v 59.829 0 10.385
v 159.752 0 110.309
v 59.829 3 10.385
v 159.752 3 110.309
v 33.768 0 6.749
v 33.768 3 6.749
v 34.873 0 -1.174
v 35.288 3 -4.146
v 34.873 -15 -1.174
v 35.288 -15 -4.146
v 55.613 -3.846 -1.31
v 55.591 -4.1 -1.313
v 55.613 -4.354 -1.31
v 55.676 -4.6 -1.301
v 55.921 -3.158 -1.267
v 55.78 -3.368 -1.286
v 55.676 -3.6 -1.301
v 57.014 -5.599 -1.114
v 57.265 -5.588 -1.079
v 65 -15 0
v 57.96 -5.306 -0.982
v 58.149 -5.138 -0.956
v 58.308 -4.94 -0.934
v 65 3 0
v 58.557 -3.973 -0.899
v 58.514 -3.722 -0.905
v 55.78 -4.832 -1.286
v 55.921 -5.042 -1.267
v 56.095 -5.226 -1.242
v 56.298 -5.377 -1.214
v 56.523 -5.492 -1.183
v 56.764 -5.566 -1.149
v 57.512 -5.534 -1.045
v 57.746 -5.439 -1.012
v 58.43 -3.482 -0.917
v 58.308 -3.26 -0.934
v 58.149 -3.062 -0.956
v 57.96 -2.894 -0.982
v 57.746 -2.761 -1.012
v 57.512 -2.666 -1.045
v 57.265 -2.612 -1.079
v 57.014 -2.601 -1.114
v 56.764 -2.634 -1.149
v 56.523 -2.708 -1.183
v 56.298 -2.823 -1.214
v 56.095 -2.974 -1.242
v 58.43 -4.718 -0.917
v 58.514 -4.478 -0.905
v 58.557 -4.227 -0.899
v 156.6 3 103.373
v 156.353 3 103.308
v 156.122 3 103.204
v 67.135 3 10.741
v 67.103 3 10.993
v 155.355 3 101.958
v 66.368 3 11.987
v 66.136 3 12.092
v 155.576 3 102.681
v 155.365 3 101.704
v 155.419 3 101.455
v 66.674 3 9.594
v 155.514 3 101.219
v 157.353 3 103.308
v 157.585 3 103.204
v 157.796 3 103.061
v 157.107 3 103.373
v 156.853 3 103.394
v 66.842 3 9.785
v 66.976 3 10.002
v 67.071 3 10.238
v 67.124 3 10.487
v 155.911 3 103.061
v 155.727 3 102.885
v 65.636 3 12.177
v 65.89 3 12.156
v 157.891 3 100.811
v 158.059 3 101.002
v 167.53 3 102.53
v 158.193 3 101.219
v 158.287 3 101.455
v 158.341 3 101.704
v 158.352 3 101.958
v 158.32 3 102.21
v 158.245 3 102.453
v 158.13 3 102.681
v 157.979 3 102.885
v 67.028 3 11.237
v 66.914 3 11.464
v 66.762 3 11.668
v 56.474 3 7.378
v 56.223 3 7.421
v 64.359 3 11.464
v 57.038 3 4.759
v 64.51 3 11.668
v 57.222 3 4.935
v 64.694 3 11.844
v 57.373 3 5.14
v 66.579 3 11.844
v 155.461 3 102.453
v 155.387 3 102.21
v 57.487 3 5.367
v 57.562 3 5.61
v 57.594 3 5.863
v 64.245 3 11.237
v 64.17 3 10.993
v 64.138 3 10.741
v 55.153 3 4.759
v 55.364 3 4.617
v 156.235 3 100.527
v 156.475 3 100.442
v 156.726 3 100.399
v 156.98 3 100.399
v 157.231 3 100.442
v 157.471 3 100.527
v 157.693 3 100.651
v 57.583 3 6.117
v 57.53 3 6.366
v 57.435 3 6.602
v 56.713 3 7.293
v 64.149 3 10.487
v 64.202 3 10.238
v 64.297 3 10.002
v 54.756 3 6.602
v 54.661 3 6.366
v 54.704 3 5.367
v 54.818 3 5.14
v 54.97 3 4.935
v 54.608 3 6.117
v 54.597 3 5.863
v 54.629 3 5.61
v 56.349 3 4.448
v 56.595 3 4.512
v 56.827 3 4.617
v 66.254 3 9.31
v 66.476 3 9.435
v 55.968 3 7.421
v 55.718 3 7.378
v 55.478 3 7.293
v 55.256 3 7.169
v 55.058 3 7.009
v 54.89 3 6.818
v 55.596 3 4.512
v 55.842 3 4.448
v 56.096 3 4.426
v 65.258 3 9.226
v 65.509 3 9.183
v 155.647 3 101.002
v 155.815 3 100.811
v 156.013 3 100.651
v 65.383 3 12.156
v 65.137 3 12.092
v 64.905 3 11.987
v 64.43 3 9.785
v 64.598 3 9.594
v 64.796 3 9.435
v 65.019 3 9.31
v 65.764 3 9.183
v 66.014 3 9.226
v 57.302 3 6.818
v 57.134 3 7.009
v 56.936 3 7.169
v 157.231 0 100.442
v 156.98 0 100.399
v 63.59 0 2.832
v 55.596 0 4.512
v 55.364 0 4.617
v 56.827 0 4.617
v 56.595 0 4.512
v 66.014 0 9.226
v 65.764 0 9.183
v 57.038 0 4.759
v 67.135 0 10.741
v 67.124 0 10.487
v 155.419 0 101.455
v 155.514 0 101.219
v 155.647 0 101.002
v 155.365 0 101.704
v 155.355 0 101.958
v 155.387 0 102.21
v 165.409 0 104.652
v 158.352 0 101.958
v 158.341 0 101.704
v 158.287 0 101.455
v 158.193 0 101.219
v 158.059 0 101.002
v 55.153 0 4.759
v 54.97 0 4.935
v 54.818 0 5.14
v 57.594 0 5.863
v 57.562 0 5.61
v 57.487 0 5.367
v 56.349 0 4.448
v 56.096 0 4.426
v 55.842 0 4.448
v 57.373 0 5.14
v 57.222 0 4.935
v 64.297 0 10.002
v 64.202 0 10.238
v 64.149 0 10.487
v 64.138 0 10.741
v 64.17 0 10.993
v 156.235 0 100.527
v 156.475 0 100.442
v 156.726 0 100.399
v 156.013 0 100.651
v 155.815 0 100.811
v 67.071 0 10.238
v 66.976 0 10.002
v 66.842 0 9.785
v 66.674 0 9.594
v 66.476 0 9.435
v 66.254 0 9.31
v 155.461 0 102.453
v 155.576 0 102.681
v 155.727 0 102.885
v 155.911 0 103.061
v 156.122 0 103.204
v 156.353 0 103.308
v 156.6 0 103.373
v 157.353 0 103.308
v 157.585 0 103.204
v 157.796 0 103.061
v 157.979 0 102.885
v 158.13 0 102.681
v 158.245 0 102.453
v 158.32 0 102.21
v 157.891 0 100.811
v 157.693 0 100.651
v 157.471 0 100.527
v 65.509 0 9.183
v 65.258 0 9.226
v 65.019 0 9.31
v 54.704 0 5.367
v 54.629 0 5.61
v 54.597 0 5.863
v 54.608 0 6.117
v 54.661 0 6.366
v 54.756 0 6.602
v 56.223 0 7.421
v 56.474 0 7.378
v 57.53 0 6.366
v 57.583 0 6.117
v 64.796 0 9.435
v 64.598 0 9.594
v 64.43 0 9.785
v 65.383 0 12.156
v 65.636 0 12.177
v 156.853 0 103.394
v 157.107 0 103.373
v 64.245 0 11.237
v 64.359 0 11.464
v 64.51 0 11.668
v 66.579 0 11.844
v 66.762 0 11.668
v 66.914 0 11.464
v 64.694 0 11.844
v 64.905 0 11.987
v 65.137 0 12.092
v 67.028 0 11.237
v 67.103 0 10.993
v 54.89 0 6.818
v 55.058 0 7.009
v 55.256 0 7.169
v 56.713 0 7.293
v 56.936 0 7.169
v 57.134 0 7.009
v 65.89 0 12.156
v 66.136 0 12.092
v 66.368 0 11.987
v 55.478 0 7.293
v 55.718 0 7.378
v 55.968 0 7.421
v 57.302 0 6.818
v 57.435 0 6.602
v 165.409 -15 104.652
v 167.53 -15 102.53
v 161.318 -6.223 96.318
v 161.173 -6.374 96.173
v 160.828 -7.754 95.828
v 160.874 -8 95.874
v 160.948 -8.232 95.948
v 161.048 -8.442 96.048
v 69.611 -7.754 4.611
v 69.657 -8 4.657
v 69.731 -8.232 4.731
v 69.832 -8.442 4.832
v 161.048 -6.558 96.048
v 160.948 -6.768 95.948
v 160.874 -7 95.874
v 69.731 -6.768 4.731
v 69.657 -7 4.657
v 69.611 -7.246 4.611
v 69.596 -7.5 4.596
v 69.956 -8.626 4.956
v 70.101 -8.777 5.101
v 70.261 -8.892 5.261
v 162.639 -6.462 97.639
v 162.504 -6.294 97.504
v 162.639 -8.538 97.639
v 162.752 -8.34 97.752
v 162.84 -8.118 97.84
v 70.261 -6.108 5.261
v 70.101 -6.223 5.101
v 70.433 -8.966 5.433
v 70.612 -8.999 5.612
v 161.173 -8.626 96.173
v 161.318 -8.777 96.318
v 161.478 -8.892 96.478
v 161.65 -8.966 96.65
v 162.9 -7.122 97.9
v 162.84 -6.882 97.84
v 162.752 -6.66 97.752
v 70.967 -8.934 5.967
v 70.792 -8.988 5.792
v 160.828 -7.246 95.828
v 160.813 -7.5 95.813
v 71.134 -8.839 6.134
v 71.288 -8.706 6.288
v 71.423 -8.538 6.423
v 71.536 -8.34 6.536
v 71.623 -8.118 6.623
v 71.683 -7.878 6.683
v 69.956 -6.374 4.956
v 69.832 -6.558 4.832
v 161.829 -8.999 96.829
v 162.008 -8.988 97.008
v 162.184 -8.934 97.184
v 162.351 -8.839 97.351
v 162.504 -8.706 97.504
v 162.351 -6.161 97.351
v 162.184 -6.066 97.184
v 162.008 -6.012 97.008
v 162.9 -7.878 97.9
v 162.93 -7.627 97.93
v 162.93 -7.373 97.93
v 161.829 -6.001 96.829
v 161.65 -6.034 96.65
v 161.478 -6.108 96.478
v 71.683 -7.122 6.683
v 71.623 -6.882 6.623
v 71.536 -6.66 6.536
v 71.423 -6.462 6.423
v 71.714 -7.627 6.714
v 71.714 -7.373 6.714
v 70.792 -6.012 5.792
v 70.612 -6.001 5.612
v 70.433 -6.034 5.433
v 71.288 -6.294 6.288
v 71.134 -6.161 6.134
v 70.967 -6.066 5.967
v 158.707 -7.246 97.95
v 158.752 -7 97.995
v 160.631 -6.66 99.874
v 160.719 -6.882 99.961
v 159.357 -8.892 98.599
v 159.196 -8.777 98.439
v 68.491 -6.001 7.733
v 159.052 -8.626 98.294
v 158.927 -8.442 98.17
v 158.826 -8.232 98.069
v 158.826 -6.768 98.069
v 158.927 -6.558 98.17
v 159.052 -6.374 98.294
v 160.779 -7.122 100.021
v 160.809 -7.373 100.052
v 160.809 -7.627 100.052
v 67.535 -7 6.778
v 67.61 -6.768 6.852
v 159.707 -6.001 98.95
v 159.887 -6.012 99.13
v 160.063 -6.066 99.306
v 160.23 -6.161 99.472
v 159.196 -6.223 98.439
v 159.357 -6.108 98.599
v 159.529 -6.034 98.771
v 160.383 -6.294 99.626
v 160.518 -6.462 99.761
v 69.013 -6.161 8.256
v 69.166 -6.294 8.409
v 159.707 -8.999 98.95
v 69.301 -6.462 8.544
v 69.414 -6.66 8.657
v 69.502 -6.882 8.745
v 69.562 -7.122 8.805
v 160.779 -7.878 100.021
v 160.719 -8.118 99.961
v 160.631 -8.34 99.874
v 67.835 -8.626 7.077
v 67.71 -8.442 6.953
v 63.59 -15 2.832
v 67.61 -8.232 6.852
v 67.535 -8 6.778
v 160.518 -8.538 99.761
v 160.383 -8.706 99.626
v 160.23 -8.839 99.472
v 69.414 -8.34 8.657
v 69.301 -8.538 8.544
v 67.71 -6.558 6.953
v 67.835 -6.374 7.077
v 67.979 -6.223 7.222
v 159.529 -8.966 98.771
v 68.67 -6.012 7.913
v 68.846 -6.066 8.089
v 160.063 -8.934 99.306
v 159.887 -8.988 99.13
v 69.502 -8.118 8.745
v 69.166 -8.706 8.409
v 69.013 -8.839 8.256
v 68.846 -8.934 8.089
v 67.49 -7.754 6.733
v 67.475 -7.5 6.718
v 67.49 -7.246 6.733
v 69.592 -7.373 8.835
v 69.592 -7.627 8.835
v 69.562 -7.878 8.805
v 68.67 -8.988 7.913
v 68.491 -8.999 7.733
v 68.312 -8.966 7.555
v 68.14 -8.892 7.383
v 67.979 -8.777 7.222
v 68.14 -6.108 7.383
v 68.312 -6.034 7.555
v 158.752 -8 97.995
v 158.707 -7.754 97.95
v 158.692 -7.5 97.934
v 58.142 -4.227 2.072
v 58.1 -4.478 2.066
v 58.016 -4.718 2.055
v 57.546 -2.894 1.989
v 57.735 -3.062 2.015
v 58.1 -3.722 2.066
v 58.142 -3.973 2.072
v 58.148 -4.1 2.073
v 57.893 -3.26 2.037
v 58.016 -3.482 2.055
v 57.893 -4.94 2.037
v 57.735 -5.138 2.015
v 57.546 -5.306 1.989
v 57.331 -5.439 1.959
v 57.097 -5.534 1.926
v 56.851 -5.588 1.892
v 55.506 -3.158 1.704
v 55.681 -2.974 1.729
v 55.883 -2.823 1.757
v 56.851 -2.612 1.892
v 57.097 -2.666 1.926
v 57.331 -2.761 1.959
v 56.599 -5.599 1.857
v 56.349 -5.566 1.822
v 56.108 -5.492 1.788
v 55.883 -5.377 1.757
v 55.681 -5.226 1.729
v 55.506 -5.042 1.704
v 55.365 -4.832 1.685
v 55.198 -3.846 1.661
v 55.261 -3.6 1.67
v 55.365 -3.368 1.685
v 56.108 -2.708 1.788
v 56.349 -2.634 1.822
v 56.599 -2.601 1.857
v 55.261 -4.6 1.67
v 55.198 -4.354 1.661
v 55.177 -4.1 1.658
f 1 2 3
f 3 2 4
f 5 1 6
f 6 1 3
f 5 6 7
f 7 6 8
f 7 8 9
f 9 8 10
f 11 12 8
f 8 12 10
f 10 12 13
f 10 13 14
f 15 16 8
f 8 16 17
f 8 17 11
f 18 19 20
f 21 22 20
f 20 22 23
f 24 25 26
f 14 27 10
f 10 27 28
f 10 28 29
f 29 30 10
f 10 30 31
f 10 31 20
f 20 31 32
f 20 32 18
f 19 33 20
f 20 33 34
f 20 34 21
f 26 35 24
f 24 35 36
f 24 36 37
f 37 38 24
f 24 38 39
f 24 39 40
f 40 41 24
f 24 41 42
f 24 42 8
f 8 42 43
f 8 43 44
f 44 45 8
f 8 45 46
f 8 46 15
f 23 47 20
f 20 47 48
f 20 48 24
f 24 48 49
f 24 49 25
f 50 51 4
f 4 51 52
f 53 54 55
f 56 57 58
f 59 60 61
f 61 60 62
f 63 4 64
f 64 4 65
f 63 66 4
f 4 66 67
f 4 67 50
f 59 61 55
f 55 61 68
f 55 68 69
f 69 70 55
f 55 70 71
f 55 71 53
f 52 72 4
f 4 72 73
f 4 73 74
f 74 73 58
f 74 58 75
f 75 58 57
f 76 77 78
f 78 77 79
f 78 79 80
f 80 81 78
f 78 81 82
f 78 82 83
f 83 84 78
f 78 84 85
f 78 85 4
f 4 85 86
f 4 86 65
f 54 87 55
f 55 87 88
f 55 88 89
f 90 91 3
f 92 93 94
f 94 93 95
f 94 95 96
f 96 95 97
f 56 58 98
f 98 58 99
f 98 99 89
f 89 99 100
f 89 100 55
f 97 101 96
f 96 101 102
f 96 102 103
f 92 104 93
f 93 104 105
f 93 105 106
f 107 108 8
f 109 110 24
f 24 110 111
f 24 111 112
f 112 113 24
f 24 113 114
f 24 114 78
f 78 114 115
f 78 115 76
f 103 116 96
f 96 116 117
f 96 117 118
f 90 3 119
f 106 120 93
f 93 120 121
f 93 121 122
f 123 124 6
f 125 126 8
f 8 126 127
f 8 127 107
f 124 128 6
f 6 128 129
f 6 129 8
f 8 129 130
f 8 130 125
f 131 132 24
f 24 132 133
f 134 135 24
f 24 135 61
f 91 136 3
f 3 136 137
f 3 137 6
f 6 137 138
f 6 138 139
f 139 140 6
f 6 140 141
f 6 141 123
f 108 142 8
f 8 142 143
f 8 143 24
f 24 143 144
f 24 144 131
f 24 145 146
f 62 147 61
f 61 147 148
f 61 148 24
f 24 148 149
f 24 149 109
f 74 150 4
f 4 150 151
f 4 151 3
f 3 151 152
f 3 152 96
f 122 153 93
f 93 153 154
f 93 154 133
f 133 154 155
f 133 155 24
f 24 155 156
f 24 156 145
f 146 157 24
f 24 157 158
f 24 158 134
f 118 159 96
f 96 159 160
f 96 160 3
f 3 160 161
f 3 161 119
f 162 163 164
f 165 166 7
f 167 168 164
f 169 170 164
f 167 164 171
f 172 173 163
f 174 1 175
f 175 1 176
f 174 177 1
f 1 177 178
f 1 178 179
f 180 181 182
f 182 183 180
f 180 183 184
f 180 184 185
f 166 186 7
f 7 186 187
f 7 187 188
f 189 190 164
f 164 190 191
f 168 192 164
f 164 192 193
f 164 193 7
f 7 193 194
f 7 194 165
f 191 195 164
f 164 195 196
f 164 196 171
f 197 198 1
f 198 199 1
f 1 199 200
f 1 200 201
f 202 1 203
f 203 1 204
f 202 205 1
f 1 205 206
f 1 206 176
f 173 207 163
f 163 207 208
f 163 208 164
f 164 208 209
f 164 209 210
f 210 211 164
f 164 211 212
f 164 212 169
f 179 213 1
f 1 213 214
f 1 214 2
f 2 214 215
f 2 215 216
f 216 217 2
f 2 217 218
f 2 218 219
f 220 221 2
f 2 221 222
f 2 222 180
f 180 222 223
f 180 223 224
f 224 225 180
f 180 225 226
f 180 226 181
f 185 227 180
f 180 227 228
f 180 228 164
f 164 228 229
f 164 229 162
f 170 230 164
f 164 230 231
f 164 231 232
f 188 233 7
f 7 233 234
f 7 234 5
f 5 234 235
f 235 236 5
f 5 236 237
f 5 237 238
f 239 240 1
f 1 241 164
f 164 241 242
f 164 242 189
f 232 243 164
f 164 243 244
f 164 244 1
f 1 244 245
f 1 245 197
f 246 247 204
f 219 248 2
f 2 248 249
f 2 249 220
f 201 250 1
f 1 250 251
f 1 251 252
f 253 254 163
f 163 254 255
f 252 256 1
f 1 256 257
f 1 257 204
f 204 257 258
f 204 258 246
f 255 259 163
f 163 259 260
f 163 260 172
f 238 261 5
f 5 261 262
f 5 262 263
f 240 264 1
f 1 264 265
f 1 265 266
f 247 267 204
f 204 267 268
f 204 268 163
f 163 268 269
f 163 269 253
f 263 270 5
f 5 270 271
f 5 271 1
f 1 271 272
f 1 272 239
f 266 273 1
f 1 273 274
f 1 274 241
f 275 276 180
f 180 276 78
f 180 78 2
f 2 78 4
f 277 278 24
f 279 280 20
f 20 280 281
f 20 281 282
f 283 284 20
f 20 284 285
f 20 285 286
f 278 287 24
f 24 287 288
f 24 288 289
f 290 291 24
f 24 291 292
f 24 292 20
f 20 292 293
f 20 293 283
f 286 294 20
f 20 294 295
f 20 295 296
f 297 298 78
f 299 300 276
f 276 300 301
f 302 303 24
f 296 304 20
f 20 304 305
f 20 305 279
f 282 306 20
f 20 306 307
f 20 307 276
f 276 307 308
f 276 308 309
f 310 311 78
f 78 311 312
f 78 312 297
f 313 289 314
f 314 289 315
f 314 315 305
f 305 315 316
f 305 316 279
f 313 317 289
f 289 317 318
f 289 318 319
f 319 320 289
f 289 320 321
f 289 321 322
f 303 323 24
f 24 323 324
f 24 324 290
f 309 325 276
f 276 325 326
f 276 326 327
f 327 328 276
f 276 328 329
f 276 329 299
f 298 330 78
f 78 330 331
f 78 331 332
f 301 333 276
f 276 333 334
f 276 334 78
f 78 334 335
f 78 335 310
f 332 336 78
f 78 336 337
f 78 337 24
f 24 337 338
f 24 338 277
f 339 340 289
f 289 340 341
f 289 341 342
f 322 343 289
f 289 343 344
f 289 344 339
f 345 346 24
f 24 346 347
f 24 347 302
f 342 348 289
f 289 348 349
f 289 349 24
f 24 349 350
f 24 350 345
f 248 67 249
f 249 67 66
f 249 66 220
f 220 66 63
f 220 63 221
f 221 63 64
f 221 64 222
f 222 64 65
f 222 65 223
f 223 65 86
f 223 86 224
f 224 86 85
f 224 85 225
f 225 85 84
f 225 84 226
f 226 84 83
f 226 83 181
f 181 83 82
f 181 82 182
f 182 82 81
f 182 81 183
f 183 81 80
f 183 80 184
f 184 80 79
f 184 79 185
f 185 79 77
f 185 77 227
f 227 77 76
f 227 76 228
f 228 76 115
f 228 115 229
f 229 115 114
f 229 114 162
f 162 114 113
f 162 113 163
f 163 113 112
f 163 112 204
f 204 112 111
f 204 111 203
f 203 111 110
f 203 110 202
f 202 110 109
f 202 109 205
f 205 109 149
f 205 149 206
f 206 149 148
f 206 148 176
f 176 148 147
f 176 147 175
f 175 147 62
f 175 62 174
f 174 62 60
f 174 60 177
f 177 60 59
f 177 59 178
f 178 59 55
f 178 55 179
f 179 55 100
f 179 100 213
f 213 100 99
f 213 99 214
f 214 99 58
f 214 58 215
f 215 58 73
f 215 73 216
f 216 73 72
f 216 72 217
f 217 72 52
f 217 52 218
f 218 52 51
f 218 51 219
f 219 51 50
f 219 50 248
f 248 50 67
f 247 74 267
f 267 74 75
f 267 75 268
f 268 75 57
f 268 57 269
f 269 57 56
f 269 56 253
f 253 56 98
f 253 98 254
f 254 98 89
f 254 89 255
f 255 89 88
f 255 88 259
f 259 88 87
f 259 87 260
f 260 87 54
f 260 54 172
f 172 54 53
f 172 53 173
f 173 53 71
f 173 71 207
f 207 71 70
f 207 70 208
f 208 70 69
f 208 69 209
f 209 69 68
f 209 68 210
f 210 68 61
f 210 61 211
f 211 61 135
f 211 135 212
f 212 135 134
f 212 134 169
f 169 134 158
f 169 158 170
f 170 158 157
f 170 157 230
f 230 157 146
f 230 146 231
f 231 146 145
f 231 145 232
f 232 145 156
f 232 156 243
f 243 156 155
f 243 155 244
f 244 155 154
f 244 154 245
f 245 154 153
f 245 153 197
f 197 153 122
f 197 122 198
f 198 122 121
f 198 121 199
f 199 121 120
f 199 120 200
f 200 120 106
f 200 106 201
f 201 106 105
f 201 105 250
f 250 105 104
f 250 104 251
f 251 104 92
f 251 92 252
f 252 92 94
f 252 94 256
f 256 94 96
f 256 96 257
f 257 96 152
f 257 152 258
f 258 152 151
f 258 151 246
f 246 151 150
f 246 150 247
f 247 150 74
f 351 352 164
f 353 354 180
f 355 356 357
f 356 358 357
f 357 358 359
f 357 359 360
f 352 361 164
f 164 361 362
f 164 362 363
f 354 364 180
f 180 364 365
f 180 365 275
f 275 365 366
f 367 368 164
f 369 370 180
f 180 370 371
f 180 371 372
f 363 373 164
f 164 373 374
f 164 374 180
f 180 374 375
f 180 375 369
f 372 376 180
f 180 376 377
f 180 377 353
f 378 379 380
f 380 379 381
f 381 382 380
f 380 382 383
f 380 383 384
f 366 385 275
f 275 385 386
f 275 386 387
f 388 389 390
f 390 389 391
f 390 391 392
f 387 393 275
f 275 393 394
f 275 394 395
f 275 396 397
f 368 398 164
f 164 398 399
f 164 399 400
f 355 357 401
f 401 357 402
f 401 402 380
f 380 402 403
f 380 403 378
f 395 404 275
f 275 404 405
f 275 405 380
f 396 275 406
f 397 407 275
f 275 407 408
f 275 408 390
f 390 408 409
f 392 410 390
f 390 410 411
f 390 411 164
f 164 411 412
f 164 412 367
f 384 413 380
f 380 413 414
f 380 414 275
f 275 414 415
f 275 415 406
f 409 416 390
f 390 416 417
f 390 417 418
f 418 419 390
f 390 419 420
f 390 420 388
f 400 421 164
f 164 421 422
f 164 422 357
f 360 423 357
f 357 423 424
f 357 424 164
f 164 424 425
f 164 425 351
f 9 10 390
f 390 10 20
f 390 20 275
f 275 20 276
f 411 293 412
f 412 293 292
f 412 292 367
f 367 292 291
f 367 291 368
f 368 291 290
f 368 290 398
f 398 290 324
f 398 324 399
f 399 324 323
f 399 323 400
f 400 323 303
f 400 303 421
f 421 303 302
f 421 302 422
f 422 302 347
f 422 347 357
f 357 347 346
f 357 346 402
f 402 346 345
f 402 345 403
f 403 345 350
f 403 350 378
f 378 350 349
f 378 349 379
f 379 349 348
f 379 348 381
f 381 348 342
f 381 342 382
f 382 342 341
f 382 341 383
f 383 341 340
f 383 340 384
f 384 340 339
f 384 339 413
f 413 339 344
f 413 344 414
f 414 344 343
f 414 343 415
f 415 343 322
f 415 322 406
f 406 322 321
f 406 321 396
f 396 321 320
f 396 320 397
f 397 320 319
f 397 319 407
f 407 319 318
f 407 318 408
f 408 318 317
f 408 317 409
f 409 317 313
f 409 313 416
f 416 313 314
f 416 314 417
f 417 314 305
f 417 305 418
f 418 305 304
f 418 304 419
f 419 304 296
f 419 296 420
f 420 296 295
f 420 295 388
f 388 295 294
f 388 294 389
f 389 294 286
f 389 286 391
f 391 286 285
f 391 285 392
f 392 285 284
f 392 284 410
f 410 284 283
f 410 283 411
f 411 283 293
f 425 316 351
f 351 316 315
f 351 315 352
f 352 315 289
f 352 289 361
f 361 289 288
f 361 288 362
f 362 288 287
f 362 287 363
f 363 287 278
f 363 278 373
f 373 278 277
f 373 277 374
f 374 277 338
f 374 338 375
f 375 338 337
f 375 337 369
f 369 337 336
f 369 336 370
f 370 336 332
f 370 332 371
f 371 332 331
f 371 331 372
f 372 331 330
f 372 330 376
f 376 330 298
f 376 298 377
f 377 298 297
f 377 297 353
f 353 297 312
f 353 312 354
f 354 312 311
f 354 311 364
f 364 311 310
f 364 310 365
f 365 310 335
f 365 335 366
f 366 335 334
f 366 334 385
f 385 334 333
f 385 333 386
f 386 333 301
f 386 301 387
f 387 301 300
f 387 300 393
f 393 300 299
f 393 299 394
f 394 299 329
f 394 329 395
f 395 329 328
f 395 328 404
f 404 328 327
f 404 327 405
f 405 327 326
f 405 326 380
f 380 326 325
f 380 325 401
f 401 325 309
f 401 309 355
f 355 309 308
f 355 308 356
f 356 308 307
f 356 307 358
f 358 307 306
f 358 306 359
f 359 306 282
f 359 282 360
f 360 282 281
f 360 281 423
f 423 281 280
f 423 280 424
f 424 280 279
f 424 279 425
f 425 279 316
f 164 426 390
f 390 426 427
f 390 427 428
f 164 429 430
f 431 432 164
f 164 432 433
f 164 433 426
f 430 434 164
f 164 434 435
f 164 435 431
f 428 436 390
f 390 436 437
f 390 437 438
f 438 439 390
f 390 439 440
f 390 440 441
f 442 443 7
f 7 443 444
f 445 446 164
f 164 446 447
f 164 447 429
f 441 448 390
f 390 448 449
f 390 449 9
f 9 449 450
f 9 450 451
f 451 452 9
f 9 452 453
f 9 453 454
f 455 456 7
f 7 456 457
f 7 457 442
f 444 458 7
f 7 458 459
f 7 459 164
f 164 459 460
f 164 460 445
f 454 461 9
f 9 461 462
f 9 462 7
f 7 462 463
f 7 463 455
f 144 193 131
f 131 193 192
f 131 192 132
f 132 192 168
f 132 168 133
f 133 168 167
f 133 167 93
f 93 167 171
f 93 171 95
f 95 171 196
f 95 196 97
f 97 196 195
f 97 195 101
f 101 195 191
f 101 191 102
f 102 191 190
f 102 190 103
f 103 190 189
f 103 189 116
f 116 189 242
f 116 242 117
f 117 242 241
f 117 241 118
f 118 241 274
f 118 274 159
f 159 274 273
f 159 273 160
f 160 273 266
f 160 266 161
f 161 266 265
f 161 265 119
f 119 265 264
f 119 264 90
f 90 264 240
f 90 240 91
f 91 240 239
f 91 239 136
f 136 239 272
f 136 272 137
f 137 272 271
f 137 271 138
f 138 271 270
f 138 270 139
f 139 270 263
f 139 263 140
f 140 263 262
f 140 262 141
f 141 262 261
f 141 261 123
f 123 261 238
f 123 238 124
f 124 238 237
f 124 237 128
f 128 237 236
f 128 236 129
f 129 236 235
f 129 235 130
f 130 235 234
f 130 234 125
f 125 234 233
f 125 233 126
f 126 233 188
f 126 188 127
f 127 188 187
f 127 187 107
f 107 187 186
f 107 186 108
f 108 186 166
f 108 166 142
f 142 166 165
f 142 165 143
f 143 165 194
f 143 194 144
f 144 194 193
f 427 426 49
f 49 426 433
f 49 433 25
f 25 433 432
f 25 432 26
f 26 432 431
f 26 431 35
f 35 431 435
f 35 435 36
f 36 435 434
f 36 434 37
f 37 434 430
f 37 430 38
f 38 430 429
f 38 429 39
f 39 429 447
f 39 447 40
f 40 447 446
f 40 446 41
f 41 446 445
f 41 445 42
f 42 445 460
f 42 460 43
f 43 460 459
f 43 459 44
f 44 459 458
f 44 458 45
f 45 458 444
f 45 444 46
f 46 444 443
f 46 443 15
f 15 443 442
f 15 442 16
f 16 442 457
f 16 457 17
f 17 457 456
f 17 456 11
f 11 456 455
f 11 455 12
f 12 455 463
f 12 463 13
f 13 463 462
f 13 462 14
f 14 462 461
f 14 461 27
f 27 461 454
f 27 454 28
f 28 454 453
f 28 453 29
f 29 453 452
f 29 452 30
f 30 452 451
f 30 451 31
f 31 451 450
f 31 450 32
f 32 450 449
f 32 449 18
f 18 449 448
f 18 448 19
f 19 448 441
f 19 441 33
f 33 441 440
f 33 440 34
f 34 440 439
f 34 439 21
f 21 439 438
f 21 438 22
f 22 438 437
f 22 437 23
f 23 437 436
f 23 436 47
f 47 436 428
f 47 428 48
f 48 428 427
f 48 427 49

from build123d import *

# Parameters (mm, degrees)
CROQUIS1_R                = 1.5
SALIENTE_EXTRUIR2_DEPTH   = 3
SALIENTE_EXTRUIR2_2_DEPTH = 3
SALIENTE_EXTRUIR3_DEPTH   = 3
CROQUIS4_R                = 1.5
CORTAR_EXTRUIR2_DEPTH     = 3
SALIENTE_EXTRUIR4_START   = -3
CROQUIS5_R                = 1.5
SALIENTE_EXTRUIR4_DEPTH   = 3
SALIENTE_EXTRUIR5_DEPTH   = 15
CROQUIS7_R                = 1.5
CORTAR_EXTRUIR3_DEPTH     = 15
CROQUIS8_R                = 1.5
CORTAR_EXTRUIR4_DEPTH     = 15
CROQUIS9_R                = 1.5
CORTAR_EXTRUIR5_DEPTH     = 15
CROQUIS10_W               = 207.078994109
CROQUIS10_H               = 142.865408101
CORTAR_EXTRUIR6_DEPTH     = 20
SALIENTE_EXTRUIR6_DEPTH   = 3
CORTAR_EXTRUIR9_DEPTH     = 6
SALIENTE_EXTRUIR8_DEPTH   = 6
CROQUIS14_W               = 35.322230026
CROQUIS14_H               = 29.345994137
CORTAR_EXTRUIR10_DEPTH    = 3
CROQUIS15_W               = 36.043333432
CROQUIS15_H               = 18.319096506
CORTAR_EXTRUIR12_DEPTH    = 10
SALIENTE_EXTRUIR9_DEPTH   = 15
CROQUIS17_R               = 1.5
CORTAR_EXTRUIR14_DEPTH    = 30
CROQUIS18_R               = 1.5
CORTAR_EXTRUIR15_DEPTH    = 30


with BuildPart() as part:
    # Croquis1 → Saliente-Extruir2 (new body)
    with BuildSketch(Plane(origin=(0, 0, 0), x_dir=(1, 0, 0), z_dir=(0, 1, 0))):
        Polygon((35, 0), (65, 0), (167.530483272, -102.530483272), (161.873629023, -108.187337522), (61.686291501, -8), (35, -8), align=None)
        with Locations(Location((50, -4, 0), (0, 0, 270))):
            Circle(CROQUIS1_R, mode=Mode.SUBTRACT)
        with Locations(Location((159.045201898, -99.702056147, 0), (0, 0, 270))):
            Circle(CROQUIS1_R, mode=Mode.SUBTRACT)
        with Locations(Location((67.828427125, -8.485281374, 0), (0, 0, 270))):
            Circle(CROQUIS1_R, mode=Mode.SUBTRACT)
    extrude(amount=SALIENTE_EXTRUIR2_DEPTH)



with BuildPart() as body_2:
    # Croquis1 → Saliente-Extruir2 2 (new body)
    with BuildSketch(Plane(origin=(0, 0, 0), x_dir=(1, 0, 0), z_dir=(0, 1, 0))):
        Polygon((-35, 0), (-65, 0), (-167.530483272, -102.530483272), (-161.873629023, -108.187337522), (-61.686291501, -8), (-35, -8), align=None)
        with Locations(Location((-50, -4, 0), (0, 0, 270))):
            Circle(CROQUIS1_R, mode=Mode.SUBTRACT)
        with Locations(Location((-67.828427125, -8.485281374, 0), (0, 0, 270))):
            Circle(CROQUIS1_R, mode=Mode.SUBTRACT)
        with Locations(Location((-159.045201898, -99.702056147, 0), (0, 0, 270))):
            Circle(CROQUIS1_R, mode=Mode.SUBTRACT)
    extrude(amount=SALIENTE_EXTRUIR2_2_DEPTH)


with BuildPart() as part_1:
    add(part.part)

    add(body_2.part)  # Saliente-Extruir3 merges body 2
    # Croquis3 → Saliente-Extruir3 (add)
    with BuildSketch(Plane(origin=(0, 3, 0), x_dir=(1, 0, 0), z_dir=(0, 1, 0))):
        Polygon((-161.873629023, -108.187337522), (-159.752308679, -110.308657865), (-60.443650814, -11), (-35, -11), (-35, -8), (-61.686291501, -8), align=None)
        Polygon((35, -8), (61.686291501, -8), (161.873629023, -108.187337522), (159.752308679, -110.308657865), (60.443650814, -11), (35, -11), align=None)
    extrude(amount=-SALIENTE_EXTRUIR3_DEPTH)

    # Croquis4 → Cortar-Extruir2 (cut)
    with BuildSketch(Plane(origin=(0, 3, 0), x_dir=(1, 0, 0), z_dir=(0, 1, 0))):
        with Locations(Location((-50, -7.1, 0), (0, 0, 270))):
            Circle(CROQUIS4_R)
        with Locations(Location((-65.636396103, -10.677312396, 0), (0, 0, 270))):
            Circle(CROQUIS4_R)
        with Locations(Location((-156.853170876, -101.894087169, 0), (0, 0, 270))):
            Circle(CROQUIS4_R)
        with Locations(Location((50, -7.1, 0), (0, 0, 270))):
            Circle(CROQUIS4_R)
        with Locations(Location((65.636396103, -10.677312396, 0), (0, 0, 270))):
            Circle(CROQUIS4_R)
        with Locations(Location((156.853170876, -101.894087169, 0), (0, 0, 270))):
            Circle(CROQUIS4_R)
    extrude(amount=-CORTAR_EXTRUIR2_DEPTH, mode=Mode.SUBTRACT)

    # Croquis5 → Saliente-Extruir4 (add)
    with BuildSketch(Plane(origin=(0, 3, 0), x_dir=(1, 0, 0), z_dir=(0, 1, 0)).offset(SALIENTE_EXTRUIR4_START)):
        with Locations((-159.045201898, -99.702056147)):
            Circle(CROQUIS5_R)
        with Locations((-67.828427125, -8.485281374)):
            Circle(CROQUIS5_R)
        with Locations((-50, -4)):
            Circle(CROQUIS5_R)
        with Locations((50, -4)):
            Circle(CROQUIS5_R)
        with Locations((67.828427125, -8.485281374)):
            Circle(CROQUIS5_R)
        with Locations((159.045201898, -99.702056147)):
            Circle(CROQUIS5_R)
    extrude(amount=SALIENTE_EXTRUIR4_DEPTH)

    # Croquis6 → Saliente-Extruir5 (add)
    with BuildSketch(Plane(origin=(0, 0, 0), x_dir=(-1, 0, 0), z_dir=(0, -1, 0))):
        Polygon((167.530483272, -102.530483272), (65, 0), (35, 0), (35, -3), (63.757359313, -3), (165.409162928, -104.651803616), align=None)
        Polygon((-35, 0), (-35, -3), (-63.757359313, -3), (-165.409162928, -104.651803616), (-167.530483272, -102.530483272), (-65, 0), align=None)
    extrude(amount=SALIENTE_EXTRUIR5_DEPTH)

    # Croquis7 → Cortar-Extruir3 (cut)
    with BuildSketch(Plane(origin=(0, 0, 0), x_dir=(-1, 0, 0), z_dir=(0, 0, -1))):
        with Locations((50, -7.5)):
            Circle(CROQUIS7_R)
        with Locations((-50, -7.5)):
            Circle(CROQUIS7_R)
    extrude(amount=-CORTAR_EXTRUIR3_DEPTH, mode=Mode.SUBTRACT)

    # Croquis8 → Cortar-Extruir4 (cut)
    with BuildSketch(Plane(origin=(-32.5, 0, -32.5), x_dir=(-0.7071067811865476, 0, 0.7071067811865476), z_dir=(-0.7071067811865476, 0, -0.7071067811865476))):
        with Locations((182.961940777, -7.5)):
            Circle(CROQUIS8_R)
        with Locations((53.961940777, -7.5)):
            Circle(CROQUIS8_R)
    extrude(amount=-CORTAR_EXTRUIR4_DEPTH, mode=Mode.SUBTRACT)

    # Croquis9 → Cortar-Extruir5 (cut)
    with BuildSketch(Plane(origin=(32.5, 0, -32.5), x_dir=(-0.7071067811865476, 0, -0.7071067811865476), z_dir=(0.7071067811865476, 0, -0.7071067811865476))):
        with Locations((-182.961940777, -7.5)):
            Circle(CROQUIS9_R)
        with Locations((-53.961940777, -7.5)):
            Circle(CROQUIS9_R)
    extrude(amount=-CORTAR_EXTRUIR5_DEPTH, mode=Mode.SUBTRACT)

    # Croquis10 → Cortar-Extruir6 (cut)
    with BuildSketch(Plane(origin=(0, 3, 0), x_dir=(1, 0, 0), z_dir=(0, 1, 0))):
        with Locations((-138.539497055, -71.432704051)):
            Rectangle(CROQUIS10_W, CROQUIS10_H)
    extrude(amount=-CORTAR_EXTRUIR6_DEPTH, mode=Mode.SUBTRACT)

    # Croquis11 → Saliente-Extruir6 (add)
    with BuildSketch(Plane(origin=(0, 3, 0), x_dir=(1, 0, 0), z_dir=(0, 1, 0))):
        Polygon((65, 0), (35.287813482, 4.145596742), (33.767761344, -6.748871648), (59.828674856, -10.385024042), (60.443650814, -11), align=None)
    extrude(amount=SALIENTE_EXTRUIR6_DEPTH)

    # Croquis12 → Cortar-Extruir9 (cut)
    with BuildSketch(Plane(origin=(0, 6, 0), x_dir=(1, 0, 0), z_dir=(0, 1, 0))):
        Polygon((35, -6.920799909), (35, -11), (60.443650814, -11), (59.828674856, -10.385024042), align=None)
    extrude(amount=-CORTAR_EXTRUIR9_DEPTH, mode=Mode.SUBTRACT)

    # Croquis13 → Saliente-Extruir8 (add)
    with BuildSketch(Plane(origin=(0, 6, 0), x_dir=(1, 0, 0), z_dir=(0, 1, 0))):
        Polygon((35.287813482, 4.145596742), (33.767761344, -6.748871648), (59.828674856, -10.385024042), (60.443650814, -11), (65, 0), align=None)
    extrude(amount=-SALIENTE_EXTRUIR8_DEPTH)

    # Croquis14 → Cortar-Extruir10 (cut)
    with BuildSketch(Plane(origin=(0, 6, 0), x_dir=(1, 0, 0), z_dir=(0, 1, 0))):
        with Locations((49.859763615, -7.874178501)):
            Rectangle(CROQUIS14_W, CROQUIS14_H)
    extrude(amount=-CORTAR_EXTRUIR10_DEPTH, mode=Mode.SUBTRACT)

    # Croquis15 → Cortar-Extruir12 (cut)
    with BuildSketch(Plane(origin=(1.241209114, 0, -8.895953705), x_dir=(-0.9904062172531622, 0, -0.1381865580520849), z_dir=(0.1381865580520849, 0, -0.9904062172531622))):
        with Locations((-46.354737405, -9.159548253)):
            Rectangle(CROQUIS15_W, CROQUIS15_H)
    extrude(amount=-CORTAR_EXTRUIR12_DEPTH, mode=Mode.SUBTRACT)

    # Croquis16 → Saliente-Extruir9 (add)
    with BuildSketch(Plane(origin=(0, 0, 0), x_dir=(-1, 0, 0), z_dir=(0, -1, 0))):
        Polygon((-35.287813482, 4.145596742), (-65, 0), (-64.480524839, -3.723165526), (-63.589638597, -2.832279284), (-34.873253808, 1.17437809), align=None)
        Polygon((-66.286556106, -3.282217184), (-65, 0), (-64.480524839, -3.723165526), align=None)
    extrude(amount=SALIENTE_EXTRUIR9_DEPTH)

    # Croquis17 → Cortar-Extruir14 (cut)
    with BuildSketch(Plane(origin=(0, -15, 0), x_dir=(-1, 0, 0), z_dir=(0, -1, 0))):
        with Locations(Location((-56.0956257, -5.926391678, 0), (0, 0, 90))):
            Circle(CROQUIS17_R)
    extrude(amount=-CORTAR_EXTRUIR14_DEPTH, mode=Mode.SUBTRACT)

    # Croquis18 → Cortar-Extruir15 (cut)
    with BuildSketch(Plane(origin=(1.241209114, 0, -8.895953705), x_dir=(-0.9904062172531622, 0, -0.1381865580520849), z_dir=(0.1381865580520849, 0, -0.9904062172531622))):
        with Locations((-56.376404121, -4.1)):
            Circle(CROQUIS18_R)
    extrude(amount=-CORTAR_EXTRUIR15_DEPTH, mode=Mode.SUBTRACT)


solid = part_1.part
